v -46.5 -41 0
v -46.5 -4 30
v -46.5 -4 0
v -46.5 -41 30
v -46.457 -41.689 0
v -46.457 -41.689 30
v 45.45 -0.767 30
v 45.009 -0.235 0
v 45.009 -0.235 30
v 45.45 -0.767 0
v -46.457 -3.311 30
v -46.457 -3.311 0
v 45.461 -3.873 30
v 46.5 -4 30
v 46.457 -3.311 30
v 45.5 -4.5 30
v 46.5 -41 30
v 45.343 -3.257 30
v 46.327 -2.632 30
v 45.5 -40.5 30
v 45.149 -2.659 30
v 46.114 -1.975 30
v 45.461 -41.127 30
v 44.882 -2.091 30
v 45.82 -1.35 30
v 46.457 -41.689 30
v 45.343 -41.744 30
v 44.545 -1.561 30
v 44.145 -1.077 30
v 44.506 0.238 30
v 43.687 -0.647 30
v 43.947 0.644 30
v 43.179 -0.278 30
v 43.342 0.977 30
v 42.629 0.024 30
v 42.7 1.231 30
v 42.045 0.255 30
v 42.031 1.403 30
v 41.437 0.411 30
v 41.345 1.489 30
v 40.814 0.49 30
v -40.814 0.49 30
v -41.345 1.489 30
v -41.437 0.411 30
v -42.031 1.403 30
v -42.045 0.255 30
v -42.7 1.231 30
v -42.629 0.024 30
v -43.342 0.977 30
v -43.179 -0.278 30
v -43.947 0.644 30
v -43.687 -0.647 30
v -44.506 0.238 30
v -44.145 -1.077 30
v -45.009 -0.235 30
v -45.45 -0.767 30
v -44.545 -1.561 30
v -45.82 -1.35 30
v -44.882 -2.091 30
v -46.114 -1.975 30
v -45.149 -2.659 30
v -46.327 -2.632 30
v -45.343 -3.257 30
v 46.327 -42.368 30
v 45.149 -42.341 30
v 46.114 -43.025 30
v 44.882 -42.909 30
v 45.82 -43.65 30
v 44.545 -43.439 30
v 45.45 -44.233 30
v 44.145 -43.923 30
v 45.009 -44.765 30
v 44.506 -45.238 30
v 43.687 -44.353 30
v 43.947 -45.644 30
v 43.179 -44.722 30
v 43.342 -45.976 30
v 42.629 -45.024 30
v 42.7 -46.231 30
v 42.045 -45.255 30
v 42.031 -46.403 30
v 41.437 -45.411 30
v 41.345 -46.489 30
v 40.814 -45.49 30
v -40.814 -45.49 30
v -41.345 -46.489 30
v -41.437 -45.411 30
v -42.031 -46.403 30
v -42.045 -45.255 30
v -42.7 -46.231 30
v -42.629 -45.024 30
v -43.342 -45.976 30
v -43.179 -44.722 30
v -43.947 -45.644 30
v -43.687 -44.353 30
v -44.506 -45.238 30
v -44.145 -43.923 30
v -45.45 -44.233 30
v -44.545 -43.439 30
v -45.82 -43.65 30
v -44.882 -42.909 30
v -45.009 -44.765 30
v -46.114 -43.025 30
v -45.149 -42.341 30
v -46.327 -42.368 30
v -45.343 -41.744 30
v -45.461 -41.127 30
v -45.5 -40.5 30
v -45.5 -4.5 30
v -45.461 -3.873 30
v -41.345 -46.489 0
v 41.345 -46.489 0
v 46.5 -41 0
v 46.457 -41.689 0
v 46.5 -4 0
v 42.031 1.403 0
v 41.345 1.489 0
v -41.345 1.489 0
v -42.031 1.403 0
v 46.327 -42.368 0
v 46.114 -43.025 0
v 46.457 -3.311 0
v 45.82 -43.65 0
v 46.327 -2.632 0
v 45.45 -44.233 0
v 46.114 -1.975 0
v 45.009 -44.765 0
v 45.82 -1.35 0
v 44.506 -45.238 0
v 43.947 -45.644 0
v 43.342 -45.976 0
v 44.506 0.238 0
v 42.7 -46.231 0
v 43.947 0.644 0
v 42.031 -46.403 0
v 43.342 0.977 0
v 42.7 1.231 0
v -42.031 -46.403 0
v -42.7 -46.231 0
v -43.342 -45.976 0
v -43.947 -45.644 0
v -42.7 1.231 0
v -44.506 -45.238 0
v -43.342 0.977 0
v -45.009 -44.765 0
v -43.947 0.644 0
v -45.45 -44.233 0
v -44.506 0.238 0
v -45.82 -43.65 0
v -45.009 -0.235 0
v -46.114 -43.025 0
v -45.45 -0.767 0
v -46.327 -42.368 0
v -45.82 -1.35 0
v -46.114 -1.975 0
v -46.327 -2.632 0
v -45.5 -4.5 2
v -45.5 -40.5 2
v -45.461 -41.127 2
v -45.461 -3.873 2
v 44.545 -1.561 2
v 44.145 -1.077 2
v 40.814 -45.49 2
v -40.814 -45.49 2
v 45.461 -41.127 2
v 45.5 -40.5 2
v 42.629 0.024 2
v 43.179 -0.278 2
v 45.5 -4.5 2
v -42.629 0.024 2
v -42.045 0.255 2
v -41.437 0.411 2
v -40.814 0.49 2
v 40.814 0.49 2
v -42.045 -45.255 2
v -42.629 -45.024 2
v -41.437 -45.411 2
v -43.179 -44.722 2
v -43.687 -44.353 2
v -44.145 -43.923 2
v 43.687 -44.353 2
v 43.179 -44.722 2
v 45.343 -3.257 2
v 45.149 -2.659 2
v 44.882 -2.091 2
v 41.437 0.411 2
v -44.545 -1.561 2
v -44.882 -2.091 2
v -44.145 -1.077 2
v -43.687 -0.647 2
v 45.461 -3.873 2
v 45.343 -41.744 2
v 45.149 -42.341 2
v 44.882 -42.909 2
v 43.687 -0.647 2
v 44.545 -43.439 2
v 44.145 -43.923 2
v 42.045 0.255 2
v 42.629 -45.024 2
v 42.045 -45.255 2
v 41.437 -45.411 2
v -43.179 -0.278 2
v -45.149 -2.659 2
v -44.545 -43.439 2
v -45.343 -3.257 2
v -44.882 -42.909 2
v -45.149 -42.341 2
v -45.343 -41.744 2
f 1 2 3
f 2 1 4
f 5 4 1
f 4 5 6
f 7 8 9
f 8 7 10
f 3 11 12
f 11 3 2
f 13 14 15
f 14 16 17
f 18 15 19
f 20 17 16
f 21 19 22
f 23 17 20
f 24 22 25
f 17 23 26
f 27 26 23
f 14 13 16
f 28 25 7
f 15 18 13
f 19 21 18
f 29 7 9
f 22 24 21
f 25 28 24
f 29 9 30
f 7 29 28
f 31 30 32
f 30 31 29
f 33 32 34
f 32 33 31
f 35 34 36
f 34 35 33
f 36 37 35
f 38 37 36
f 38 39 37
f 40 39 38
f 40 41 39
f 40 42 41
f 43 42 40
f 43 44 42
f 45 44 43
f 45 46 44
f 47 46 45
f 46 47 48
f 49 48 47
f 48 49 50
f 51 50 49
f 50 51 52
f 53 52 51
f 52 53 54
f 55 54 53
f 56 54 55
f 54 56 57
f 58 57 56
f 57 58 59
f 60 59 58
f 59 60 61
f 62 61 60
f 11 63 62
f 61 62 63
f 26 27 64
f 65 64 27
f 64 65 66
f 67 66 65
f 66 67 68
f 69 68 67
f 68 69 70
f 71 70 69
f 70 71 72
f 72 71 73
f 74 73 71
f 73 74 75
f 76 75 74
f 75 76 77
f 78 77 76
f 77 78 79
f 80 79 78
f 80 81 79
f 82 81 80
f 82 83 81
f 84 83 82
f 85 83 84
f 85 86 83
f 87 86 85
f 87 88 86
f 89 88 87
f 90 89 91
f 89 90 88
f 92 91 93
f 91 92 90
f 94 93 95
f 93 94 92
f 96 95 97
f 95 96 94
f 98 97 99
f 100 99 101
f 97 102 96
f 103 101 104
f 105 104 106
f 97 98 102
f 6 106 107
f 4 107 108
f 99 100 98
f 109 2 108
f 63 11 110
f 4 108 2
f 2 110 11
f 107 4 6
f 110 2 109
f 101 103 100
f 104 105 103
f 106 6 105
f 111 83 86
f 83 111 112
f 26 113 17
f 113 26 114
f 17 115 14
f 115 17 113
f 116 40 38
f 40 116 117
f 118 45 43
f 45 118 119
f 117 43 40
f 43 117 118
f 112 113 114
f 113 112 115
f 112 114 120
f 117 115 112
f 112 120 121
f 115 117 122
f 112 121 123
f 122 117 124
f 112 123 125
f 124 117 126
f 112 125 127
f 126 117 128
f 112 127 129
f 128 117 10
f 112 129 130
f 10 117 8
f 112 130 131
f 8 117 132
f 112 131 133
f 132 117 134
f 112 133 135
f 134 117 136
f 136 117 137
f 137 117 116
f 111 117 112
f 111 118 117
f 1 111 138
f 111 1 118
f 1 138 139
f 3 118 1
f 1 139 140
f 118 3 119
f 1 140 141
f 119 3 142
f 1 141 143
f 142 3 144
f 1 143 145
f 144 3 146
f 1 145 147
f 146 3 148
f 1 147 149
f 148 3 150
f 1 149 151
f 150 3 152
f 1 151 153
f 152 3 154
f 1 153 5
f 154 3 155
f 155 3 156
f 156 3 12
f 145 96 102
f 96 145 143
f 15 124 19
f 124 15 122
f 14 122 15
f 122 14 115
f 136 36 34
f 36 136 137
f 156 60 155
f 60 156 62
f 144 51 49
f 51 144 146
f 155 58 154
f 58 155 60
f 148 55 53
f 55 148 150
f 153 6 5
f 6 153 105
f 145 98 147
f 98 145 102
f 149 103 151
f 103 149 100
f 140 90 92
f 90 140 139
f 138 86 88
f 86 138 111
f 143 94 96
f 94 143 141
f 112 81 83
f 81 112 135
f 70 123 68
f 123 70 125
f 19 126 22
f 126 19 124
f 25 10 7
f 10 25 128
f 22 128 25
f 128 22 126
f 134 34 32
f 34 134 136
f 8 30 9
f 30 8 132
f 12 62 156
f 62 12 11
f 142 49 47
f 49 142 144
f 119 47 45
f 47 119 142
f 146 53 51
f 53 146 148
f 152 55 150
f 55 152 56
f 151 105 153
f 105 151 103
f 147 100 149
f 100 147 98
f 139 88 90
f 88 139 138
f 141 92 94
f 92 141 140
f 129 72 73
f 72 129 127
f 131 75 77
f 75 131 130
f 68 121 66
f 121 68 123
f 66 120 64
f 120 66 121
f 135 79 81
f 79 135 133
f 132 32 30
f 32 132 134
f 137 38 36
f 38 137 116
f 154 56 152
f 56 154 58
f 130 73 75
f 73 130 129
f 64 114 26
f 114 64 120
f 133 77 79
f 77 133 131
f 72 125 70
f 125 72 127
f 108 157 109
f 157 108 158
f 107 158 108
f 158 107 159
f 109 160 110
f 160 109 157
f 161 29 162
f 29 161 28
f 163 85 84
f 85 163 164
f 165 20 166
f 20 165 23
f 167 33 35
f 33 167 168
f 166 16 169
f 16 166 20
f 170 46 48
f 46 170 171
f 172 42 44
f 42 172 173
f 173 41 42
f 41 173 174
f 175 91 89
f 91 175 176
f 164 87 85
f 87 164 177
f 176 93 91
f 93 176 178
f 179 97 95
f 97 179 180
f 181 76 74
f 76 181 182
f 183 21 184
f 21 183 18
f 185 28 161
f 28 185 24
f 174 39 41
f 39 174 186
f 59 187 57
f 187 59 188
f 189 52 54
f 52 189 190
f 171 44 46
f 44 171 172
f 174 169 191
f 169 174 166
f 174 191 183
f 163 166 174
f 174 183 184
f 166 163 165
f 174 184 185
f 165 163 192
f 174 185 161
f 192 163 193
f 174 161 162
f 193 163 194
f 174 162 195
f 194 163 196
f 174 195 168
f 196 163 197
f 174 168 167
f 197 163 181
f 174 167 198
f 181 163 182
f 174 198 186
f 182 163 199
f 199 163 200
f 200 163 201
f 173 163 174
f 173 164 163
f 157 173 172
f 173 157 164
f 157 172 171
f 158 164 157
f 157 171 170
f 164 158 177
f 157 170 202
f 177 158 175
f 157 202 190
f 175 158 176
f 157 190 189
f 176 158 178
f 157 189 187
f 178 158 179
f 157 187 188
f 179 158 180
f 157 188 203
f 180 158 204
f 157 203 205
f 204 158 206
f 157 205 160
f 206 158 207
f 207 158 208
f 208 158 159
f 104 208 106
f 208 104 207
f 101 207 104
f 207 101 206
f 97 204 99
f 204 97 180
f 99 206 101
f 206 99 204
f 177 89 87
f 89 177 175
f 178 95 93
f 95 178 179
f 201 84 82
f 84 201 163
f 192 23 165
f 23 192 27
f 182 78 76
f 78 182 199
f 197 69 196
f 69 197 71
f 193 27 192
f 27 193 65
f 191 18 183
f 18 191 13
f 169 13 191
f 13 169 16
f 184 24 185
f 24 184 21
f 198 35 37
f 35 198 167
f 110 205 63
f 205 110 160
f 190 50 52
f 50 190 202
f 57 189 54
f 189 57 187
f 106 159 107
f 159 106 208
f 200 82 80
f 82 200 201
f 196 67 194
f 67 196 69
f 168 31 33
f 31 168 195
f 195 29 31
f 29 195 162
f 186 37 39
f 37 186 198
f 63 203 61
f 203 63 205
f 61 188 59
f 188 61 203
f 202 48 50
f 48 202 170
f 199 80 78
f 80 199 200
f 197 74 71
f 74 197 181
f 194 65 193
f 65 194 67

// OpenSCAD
$fn = 50;


difference() {
	union() {
		translate(v = [0, -22.5000000000, 0]) {
			hull() {
				translate(v = [-41.0000000000, 18.5000000000, 0]) {
					cylinder(h = 30, r = 5.5000000000);
				}
				translate(v = [41.0000000000, 18.5000000000, 0]) {
					cylinder(h = 30, r = 5.5000000000);
				}
				translate(v = [-41.0000000000, -18.5000000000, 0]) {
					cylinder(h = 30, r = 5.5000000000);
				}
				translate(v = [41.0000000000, -18.5000000000, 0]) {
					cylinder(h = 30, r = 5.5000000000);
				}
			}
		}
	}
	union() {
		translate(v = [0, -22.5000000000, 2]) {
			hull() {
				translate(v = [-40.5000000000, 18.0000000000, 0]) {
					cylinder(h = 60, r = 5);
				}
				translate(v = [40.5000000000, 18.0000000000, 0]) {
					cylinder(h = 60, r = 5);
				}
				translate(v = [-40.5000000000, -18.0000000000, 0]) {
					cylinder(h = 60, r = 5);
				}
				translate(v = [40.5000000000, -18.0000000000, 0]) {
					cylinder(h = 60, r = 5);
				}
			}
		}
	}
}
